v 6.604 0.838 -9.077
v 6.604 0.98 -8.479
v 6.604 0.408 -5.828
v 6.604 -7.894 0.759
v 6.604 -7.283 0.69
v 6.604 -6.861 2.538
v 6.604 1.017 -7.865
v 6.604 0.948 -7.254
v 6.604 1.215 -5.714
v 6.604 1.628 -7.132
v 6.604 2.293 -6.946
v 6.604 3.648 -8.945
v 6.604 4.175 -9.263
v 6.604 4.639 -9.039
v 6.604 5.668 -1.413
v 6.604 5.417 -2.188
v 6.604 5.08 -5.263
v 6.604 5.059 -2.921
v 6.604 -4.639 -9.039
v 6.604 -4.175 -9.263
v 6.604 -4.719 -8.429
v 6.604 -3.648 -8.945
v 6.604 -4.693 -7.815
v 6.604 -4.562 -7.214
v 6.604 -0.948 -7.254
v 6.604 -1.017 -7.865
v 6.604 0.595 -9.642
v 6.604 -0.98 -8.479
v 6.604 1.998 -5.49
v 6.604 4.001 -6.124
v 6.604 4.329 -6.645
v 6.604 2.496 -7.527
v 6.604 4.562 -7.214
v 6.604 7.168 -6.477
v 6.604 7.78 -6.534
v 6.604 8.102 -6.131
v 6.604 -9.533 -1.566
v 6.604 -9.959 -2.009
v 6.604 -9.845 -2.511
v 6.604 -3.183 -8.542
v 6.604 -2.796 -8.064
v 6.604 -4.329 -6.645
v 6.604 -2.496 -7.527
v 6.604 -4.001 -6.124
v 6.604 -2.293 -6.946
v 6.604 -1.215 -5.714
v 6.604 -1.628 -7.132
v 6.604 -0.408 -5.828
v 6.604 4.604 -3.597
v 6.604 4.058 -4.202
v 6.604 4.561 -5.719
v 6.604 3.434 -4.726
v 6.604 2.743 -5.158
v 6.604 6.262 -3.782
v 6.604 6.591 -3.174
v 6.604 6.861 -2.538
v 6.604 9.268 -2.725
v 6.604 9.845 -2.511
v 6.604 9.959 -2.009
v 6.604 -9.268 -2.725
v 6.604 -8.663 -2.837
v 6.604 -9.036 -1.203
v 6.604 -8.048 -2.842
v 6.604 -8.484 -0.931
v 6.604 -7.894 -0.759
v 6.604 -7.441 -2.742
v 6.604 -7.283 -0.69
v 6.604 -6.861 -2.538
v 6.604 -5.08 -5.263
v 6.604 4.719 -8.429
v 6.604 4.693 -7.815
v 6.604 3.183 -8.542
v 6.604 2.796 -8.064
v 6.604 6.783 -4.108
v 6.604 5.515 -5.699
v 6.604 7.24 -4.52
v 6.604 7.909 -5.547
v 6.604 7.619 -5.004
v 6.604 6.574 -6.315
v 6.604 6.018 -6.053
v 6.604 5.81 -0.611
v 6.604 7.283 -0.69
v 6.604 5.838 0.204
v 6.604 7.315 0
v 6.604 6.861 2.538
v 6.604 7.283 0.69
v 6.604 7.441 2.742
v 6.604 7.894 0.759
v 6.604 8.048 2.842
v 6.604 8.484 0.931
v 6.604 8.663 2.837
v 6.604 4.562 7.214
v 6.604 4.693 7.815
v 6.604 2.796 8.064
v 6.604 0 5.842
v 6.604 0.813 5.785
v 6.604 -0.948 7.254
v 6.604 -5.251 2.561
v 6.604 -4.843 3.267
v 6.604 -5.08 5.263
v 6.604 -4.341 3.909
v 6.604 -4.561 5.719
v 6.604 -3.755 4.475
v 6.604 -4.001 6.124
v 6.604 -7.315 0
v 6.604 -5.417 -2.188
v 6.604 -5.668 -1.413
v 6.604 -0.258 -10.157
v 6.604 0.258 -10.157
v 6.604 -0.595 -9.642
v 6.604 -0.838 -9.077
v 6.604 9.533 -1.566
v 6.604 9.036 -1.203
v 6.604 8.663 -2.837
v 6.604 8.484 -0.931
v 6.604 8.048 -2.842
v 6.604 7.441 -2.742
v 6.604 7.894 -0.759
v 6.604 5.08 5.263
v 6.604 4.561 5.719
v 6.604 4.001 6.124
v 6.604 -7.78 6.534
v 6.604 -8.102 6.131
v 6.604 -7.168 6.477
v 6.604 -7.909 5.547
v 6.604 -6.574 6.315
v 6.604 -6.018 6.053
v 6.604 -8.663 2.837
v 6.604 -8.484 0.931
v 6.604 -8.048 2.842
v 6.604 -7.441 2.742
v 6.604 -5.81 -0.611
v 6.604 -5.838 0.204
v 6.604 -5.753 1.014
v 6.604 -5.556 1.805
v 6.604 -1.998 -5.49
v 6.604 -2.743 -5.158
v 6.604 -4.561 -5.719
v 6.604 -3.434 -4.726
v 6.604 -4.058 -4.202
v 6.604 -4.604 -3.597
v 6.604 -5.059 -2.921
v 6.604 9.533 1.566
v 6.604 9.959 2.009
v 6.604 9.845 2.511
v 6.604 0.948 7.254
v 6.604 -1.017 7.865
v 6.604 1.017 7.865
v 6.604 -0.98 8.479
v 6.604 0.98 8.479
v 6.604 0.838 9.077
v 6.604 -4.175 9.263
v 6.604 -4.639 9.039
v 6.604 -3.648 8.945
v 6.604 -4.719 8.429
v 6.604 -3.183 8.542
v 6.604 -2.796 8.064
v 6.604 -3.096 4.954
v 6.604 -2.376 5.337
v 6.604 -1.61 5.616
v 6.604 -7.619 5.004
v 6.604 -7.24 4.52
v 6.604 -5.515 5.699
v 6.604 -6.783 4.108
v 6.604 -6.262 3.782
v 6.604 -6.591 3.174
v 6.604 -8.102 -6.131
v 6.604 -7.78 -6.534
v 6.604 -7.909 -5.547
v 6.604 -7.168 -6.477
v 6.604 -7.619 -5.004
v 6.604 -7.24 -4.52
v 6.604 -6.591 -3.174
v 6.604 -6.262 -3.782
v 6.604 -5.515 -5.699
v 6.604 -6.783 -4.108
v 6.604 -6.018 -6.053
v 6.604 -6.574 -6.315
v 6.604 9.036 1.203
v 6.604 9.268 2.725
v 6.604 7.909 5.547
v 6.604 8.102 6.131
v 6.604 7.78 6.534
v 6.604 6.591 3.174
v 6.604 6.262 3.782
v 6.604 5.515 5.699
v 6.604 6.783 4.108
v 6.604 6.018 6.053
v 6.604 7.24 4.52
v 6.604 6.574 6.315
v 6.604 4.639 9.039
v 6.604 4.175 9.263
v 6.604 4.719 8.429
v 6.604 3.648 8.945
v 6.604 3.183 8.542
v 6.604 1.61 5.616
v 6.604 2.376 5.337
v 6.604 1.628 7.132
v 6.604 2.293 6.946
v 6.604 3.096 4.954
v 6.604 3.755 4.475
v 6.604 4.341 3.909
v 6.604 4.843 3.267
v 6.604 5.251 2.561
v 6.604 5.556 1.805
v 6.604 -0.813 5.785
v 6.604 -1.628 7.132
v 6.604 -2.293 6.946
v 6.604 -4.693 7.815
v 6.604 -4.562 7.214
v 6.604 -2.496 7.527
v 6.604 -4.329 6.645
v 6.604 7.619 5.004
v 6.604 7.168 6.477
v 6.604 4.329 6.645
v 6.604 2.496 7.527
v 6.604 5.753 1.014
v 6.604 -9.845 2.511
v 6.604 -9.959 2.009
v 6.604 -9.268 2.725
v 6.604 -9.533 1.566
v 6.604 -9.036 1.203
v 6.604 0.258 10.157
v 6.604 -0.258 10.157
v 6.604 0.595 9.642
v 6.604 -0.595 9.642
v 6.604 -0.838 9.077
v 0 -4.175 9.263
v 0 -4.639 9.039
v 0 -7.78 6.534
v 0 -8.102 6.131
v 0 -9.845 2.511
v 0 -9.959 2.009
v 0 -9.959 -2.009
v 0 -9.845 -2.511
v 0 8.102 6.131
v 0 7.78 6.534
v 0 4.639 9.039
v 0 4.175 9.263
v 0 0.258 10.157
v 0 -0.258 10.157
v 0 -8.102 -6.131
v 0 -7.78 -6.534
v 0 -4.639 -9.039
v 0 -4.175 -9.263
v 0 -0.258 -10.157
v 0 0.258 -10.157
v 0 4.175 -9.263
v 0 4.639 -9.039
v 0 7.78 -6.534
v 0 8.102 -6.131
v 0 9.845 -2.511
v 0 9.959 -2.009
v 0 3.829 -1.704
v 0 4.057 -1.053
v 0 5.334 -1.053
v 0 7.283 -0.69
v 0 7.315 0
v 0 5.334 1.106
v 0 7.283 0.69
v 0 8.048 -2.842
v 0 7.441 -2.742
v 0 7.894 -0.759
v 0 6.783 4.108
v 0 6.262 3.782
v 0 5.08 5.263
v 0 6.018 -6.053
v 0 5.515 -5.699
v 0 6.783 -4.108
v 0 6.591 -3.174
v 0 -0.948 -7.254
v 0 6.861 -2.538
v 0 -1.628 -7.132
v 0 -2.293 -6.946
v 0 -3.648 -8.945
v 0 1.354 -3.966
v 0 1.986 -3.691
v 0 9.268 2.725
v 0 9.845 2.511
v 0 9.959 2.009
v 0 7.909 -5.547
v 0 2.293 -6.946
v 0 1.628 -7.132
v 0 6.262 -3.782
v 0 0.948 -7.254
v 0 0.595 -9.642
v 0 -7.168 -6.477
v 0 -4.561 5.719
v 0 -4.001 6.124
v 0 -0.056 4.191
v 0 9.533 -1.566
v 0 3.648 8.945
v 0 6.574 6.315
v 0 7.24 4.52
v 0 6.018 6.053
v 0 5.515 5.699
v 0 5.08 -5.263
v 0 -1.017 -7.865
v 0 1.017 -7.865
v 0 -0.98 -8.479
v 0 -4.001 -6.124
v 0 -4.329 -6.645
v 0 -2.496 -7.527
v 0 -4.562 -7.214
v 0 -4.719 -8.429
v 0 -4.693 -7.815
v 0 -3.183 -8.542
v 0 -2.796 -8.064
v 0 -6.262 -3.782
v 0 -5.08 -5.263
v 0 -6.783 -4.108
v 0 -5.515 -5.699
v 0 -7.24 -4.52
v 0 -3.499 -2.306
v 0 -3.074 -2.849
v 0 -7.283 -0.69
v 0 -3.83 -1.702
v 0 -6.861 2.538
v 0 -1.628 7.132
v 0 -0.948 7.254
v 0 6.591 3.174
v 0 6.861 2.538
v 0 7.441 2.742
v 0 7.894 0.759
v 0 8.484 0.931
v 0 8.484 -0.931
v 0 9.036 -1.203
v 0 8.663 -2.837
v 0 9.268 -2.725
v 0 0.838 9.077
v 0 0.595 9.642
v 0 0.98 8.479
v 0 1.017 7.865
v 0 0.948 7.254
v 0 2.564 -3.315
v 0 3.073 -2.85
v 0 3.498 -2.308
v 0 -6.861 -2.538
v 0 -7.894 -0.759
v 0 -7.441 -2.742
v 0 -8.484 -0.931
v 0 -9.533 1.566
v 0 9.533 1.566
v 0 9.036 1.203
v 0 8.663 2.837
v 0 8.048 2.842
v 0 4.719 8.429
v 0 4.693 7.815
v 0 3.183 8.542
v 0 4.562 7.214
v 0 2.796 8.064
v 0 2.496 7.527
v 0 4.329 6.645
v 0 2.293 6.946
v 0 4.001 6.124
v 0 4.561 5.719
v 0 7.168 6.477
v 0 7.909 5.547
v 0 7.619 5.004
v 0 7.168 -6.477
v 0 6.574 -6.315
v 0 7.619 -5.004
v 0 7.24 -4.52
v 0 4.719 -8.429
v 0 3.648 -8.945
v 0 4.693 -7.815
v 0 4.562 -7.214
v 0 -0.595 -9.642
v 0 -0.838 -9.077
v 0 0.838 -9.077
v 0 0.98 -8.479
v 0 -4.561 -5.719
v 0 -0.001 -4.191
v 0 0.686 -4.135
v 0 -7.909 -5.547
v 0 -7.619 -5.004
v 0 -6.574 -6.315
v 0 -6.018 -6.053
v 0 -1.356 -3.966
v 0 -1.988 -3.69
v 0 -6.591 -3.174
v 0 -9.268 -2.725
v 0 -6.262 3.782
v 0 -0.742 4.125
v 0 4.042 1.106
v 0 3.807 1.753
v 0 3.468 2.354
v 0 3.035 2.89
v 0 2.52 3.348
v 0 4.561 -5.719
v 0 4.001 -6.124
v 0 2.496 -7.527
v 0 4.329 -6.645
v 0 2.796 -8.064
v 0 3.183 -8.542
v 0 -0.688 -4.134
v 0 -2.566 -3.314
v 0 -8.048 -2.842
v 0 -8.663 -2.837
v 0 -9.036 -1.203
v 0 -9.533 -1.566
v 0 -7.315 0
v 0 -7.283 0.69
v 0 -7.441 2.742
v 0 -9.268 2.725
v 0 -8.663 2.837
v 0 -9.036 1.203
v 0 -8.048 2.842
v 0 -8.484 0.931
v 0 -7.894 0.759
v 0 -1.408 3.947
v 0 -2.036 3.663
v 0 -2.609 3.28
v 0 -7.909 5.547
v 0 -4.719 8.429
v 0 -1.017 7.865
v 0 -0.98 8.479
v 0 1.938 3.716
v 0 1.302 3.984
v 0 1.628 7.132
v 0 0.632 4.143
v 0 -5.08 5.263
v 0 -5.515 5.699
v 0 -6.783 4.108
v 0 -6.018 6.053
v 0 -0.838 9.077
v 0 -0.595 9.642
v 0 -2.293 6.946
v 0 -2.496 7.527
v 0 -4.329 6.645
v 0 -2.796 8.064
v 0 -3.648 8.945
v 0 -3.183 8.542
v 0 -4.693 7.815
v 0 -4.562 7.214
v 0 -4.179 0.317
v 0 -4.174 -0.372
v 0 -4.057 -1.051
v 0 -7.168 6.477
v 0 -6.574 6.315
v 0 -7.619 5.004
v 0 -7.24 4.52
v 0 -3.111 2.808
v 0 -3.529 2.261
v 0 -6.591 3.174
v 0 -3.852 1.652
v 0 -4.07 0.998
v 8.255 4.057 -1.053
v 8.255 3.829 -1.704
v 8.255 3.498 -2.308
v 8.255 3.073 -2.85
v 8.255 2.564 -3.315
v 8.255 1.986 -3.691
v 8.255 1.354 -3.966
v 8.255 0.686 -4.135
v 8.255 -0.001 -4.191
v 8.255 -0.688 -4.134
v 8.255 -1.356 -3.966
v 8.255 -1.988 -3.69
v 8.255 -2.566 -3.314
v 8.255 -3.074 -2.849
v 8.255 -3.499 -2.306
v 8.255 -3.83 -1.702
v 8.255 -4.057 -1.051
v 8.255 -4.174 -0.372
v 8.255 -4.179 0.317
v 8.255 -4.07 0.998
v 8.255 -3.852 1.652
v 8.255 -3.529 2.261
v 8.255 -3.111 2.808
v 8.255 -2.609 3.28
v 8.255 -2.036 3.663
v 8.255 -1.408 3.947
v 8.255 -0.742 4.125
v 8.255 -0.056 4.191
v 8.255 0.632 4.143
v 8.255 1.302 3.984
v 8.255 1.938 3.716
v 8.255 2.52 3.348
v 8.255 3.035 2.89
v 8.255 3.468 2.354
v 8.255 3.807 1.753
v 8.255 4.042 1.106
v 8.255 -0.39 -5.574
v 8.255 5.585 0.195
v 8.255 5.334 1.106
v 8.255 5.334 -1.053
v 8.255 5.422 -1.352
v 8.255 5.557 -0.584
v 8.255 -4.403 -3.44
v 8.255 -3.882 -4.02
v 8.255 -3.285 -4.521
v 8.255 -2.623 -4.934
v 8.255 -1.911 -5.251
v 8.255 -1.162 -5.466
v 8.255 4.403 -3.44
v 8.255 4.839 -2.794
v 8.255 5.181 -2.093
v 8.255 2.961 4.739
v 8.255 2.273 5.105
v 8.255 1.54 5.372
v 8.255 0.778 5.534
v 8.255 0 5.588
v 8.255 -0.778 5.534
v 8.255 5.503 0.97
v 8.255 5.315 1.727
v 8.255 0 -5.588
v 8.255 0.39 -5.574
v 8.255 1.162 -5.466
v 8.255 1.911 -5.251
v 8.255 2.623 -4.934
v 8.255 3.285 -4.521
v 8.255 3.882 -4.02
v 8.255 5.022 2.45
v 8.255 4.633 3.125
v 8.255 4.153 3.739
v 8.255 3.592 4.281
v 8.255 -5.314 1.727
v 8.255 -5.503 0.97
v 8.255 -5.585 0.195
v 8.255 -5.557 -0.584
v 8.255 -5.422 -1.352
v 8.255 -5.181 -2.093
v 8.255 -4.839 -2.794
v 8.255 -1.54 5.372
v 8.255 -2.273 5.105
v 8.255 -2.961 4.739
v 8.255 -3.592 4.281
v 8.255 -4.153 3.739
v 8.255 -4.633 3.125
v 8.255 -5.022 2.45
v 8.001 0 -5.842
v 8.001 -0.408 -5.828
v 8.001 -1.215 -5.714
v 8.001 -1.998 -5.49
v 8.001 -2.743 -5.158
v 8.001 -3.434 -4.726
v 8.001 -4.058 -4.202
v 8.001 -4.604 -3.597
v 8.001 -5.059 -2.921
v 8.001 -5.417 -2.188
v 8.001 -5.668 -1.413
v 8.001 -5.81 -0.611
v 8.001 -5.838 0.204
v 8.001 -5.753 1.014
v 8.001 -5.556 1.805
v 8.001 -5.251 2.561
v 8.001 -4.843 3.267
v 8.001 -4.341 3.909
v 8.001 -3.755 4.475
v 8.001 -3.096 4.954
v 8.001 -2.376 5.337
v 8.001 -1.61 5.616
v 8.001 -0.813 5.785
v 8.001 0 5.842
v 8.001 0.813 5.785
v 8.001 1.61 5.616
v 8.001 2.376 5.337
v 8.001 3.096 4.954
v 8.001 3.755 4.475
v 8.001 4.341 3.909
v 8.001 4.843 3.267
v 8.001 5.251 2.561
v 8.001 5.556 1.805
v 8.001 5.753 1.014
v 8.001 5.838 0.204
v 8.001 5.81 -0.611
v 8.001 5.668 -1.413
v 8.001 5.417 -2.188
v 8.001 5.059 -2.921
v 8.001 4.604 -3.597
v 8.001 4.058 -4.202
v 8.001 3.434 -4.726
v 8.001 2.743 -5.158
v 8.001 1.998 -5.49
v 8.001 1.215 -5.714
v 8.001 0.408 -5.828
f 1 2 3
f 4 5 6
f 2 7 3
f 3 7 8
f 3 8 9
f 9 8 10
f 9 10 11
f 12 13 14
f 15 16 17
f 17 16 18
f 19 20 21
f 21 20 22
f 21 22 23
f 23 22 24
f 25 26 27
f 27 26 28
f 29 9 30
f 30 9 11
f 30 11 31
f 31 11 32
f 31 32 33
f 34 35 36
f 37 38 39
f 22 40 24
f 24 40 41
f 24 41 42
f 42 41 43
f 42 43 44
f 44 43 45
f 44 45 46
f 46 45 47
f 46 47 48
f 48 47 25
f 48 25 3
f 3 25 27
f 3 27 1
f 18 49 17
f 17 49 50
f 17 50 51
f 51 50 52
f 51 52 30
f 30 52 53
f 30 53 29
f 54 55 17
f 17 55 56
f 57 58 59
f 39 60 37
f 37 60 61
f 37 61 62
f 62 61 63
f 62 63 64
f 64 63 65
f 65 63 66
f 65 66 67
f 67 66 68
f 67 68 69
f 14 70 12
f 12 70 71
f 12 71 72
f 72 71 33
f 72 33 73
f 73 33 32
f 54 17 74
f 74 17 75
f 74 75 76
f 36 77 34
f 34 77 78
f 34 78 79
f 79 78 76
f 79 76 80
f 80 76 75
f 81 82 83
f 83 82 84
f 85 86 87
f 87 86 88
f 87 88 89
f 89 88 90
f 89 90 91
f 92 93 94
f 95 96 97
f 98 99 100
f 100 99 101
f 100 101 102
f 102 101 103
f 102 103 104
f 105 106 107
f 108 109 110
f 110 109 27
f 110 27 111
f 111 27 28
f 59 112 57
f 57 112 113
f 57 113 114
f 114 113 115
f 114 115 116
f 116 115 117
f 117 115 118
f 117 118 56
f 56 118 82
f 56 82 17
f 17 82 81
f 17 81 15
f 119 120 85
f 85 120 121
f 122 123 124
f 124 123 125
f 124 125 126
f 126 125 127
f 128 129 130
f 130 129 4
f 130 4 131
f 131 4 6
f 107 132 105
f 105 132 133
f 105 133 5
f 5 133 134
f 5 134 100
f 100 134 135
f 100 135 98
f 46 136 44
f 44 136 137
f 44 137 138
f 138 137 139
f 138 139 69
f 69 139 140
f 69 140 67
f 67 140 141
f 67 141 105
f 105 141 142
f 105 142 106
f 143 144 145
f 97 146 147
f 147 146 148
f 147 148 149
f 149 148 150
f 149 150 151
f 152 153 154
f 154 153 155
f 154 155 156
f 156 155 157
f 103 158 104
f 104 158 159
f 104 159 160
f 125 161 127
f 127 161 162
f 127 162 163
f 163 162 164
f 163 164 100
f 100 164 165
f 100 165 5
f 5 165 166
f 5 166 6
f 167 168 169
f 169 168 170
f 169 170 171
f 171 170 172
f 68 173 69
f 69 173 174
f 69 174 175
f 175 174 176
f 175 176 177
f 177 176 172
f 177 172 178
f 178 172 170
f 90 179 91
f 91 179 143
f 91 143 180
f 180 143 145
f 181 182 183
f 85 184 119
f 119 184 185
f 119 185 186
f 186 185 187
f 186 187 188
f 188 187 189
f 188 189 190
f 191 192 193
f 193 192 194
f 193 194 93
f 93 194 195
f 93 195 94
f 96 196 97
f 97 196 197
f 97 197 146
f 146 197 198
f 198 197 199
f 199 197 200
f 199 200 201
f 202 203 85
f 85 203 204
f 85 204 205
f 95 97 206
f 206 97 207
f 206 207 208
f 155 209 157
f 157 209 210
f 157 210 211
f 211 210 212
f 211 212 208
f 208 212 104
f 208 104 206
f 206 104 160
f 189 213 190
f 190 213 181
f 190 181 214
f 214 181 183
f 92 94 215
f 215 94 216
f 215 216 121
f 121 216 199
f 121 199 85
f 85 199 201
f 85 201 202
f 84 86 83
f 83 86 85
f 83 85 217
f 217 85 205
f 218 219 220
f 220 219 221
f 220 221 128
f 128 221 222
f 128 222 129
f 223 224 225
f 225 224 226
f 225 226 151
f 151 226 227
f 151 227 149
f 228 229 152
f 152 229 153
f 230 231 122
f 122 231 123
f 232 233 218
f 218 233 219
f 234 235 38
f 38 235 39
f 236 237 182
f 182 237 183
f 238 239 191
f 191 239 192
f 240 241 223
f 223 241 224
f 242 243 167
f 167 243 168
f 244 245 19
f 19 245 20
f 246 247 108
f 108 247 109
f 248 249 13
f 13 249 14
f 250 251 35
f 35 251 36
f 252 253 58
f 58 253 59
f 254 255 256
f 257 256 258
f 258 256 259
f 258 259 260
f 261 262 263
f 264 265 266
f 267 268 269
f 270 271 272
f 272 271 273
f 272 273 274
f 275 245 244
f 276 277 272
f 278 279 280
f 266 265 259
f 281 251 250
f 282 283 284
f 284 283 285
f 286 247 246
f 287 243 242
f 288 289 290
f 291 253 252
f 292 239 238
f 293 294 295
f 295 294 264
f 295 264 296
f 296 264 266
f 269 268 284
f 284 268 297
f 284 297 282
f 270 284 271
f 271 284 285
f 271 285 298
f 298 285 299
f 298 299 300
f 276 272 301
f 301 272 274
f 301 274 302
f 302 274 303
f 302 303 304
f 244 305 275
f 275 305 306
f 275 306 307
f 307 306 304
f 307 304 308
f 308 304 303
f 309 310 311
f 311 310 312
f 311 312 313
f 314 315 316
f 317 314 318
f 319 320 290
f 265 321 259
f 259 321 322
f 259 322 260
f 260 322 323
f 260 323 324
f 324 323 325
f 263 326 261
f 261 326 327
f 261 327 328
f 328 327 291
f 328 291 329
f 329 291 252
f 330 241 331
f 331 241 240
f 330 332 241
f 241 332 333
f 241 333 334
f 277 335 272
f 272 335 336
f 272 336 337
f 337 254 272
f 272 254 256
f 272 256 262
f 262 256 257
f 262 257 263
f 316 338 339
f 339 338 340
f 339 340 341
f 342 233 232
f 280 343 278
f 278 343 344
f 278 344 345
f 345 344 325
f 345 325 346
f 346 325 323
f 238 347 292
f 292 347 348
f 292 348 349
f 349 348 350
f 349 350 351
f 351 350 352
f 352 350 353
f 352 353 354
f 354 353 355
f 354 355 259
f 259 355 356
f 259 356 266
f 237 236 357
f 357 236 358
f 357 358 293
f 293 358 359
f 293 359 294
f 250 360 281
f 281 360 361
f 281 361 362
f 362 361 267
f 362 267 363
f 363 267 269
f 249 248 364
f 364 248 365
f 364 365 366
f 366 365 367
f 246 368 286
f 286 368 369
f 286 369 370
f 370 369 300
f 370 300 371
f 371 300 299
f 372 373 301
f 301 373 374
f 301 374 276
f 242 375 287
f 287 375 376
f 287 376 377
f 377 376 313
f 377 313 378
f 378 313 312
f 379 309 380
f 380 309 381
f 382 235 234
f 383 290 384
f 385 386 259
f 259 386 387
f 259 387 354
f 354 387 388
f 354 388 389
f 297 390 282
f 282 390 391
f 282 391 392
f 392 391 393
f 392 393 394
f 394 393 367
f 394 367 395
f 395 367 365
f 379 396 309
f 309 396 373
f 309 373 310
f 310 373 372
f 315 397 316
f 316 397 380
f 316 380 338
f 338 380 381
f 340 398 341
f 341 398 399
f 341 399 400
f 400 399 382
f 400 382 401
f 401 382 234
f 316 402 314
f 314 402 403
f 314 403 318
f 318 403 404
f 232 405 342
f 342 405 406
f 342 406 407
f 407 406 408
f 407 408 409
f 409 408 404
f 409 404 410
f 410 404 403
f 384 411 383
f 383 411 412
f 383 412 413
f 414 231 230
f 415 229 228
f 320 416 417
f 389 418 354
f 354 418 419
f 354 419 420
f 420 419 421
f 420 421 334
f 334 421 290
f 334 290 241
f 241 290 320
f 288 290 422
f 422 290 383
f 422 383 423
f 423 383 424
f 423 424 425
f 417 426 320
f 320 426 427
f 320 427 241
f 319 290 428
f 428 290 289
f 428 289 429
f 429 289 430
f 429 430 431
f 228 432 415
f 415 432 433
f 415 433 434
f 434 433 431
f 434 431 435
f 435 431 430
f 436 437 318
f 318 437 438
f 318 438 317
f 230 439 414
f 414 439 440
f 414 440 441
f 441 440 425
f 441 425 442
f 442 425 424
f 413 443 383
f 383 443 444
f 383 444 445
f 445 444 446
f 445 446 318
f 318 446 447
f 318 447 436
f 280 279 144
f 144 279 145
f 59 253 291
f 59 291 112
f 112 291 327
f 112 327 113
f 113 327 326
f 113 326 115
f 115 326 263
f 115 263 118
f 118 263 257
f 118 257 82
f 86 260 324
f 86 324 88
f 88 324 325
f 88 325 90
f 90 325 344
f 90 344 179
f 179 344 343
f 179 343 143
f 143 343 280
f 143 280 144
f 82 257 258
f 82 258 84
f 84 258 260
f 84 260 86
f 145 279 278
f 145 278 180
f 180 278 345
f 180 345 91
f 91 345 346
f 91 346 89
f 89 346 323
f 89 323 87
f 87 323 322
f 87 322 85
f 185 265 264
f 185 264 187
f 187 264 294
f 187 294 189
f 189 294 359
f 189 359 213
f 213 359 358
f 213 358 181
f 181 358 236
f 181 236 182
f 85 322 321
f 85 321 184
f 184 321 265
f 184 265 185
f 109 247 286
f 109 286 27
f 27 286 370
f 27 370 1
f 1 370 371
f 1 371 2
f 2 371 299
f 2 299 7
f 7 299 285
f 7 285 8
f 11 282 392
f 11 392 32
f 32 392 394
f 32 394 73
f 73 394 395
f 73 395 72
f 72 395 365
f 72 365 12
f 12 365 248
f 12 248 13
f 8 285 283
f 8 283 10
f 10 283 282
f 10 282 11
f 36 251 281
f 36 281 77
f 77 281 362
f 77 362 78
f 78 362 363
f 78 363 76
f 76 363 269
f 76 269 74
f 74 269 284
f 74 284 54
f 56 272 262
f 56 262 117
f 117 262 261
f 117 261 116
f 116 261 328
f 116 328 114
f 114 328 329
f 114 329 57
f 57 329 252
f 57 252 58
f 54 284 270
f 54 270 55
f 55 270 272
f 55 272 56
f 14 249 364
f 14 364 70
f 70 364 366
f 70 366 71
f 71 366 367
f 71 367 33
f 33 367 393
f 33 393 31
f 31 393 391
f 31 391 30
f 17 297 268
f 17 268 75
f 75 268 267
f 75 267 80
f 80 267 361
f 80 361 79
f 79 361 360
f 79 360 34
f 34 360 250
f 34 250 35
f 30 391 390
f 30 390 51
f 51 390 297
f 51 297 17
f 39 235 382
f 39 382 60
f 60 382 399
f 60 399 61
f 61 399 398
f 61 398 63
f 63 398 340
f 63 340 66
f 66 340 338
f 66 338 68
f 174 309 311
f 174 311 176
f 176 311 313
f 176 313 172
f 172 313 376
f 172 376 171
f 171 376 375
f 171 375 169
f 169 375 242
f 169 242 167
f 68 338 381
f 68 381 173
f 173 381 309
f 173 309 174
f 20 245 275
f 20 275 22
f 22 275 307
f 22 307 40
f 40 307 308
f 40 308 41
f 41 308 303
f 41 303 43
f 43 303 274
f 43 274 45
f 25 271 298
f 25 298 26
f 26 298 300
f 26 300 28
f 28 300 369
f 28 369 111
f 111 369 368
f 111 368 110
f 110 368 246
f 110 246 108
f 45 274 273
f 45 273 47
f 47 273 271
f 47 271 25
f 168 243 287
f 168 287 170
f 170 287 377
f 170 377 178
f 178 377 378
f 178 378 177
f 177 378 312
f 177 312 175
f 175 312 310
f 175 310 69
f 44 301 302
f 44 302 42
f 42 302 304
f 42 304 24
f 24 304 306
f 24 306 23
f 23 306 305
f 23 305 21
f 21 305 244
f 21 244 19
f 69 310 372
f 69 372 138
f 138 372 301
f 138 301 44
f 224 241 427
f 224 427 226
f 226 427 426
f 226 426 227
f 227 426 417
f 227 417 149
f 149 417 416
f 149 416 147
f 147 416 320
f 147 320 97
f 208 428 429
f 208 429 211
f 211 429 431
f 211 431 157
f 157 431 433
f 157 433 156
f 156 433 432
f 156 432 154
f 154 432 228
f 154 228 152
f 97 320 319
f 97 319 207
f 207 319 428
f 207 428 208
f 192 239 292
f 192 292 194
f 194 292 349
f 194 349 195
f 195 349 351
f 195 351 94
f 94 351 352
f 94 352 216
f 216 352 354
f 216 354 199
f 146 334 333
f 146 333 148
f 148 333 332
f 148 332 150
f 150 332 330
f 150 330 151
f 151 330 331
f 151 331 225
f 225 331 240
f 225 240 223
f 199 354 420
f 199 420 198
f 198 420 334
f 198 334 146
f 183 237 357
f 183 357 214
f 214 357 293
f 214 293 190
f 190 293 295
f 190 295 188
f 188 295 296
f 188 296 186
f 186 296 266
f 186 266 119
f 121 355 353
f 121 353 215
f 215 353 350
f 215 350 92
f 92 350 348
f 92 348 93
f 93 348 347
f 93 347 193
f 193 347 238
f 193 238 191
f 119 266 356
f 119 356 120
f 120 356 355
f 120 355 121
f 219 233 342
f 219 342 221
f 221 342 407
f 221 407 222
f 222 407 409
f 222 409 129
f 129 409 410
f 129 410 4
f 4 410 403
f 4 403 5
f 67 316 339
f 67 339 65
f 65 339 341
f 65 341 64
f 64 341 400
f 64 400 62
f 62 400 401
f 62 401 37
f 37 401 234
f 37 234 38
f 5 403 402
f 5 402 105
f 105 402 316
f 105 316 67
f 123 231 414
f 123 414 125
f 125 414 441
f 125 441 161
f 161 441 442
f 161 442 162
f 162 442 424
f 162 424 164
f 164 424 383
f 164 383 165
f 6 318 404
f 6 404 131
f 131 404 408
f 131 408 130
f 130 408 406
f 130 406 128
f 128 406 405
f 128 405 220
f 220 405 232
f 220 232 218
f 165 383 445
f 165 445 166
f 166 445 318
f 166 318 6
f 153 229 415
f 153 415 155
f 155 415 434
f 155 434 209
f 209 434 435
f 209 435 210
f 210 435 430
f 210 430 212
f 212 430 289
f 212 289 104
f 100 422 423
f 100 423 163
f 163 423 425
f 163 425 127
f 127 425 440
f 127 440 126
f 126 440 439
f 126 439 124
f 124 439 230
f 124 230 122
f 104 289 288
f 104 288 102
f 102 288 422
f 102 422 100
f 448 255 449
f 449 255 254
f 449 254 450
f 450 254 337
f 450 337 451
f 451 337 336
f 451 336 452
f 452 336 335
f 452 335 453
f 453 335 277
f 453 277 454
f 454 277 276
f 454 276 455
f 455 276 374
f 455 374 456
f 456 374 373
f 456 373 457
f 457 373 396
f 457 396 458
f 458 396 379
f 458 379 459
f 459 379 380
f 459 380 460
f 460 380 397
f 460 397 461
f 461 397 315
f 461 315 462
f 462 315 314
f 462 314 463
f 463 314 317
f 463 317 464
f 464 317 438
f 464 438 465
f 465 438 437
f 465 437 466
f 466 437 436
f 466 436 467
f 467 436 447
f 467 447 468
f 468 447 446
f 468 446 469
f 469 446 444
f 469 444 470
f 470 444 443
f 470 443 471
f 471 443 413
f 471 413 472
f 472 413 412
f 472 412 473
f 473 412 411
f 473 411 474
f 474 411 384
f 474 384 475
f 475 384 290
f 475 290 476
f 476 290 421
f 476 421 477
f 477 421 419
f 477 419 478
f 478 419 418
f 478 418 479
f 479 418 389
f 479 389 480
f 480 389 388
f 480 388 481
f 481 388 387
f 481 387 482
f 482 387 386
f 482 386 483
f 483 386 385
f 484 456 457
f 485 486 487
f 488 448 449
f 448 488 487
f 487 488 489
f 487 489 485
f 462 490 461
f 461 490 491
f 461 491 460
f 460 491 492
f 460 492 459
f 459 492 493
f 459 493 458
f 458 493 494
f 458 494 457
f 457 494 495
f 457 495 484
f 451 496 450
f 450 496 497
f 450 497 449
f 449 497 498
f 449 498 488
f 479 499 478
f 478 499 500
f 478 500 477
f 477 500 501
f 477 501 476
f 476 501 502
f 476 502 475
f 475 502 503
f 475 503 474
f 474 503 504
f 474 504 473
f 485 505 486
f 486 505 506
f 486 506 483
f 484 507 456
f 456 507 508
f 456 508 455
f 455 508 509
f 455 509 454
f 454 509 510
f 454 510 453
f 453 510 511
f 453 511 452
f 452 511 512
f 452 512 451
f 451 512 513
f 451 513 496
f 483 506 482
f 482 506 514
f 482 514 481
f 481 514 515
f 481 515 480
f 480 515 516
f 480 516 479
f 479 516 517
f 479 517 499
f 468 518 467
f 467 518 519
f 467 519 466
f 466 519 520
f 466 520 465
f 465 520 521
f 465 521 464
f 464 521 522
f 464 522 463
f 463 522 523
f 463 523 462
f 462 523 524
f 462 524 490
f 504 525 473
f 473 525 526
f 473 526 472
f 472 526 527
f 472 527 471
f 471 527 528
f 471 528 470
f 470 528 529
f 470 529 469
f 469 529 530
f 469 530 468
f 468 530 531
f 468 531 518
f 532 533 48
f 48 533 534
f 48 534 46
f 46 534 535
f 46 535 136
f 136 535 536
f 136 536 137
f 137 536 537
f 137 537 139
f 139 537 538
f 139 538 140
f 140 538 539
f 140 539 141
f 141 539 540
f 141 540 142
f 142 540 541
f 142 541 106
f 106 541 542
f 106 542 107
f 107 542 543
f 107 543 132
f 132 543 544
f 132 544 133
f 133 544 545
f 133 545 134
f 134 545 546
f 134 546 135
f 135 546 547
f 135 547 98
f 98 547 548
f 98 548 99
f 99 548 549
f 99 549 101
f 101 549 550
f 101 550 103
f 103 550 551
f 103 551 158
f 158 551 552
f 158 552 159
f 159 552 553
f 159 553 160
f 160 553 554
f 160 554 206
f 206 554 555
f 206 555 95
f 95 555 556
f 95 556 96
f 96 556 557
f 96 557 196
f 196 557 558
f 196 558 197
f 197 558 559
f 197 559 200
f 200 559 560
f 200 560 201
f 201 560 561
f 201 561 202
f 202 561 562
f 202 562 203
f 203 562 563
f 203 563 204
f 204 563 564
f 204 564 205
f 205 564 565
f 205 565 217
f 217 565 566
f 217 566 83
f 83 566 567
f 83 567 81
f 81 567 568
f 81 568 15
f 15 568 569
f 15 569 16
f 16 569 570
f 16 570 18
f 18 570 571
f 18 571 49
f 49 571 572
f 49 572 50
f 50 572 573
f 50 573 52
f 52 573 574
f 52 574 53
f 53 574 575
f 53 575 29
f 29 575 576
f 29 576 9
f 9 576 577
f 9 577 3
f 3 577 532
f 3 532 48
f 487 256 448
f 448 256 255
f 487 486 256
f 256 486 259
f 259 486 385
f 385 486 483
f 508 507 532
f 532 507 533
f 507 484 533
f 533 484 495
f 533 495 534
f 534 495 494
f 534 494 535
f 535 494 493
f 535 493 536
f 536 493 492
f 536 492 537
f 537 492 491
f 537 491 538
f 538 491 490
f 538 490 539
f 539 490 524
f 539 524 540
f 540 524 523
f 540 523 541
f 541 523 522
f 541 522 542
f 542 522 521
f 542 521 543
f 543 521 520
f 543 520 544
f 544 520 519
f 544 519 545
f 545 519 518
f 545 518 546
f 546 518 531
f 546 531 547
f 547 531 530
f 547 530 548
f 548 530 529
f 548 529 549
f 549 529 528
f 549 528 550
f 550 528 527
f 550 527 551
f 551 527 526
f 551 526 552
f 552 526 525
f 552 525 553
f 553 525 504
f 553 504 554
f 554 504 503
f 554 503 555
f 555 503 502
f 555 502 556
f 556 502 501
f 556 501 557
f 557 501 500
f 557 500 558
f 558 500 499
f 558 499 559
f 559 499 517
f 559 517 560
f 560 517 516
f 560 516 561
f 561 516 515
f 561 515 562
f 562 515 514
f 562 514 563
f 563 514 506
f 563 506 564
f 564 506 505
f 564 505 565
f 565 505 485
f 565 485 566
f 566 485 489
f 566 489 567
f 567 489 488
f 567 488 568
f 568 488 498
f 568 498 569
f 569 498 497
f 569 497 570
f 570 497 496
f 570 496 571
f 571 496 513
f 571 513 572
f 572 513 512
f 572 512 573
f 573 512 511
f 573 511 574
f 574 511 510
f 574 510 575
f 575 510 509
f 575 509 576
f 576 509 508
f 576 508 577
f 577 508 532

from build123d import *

# Parameters (mm, degrees)
BASPROSKE_W         = 6.604
BASPROSKE_H         = 10.16
TOOTHCUT_DEPTH      = 16.813412535
TEETHCUTS_COUNT     = 14
TEETHCUTS_ANGLE     = 334.285714286
BORSKE_R            = 4.191
BORE_DEPTH          = 50.8000508
BOSS_EXTRUDE1_START = 1.651
SKETCH1_R           = 5.842
SKETCH1_R_2         = 4.191
BOSS_EXTRUDE1_DEPTH = 1.651
SKETCH2_W           = 2.159
SKETCH2_H           = 5.334
CUT_EXTRUDE1_DEPTH  = 17.448750705
CHAMFER1_SIZE       = 0.254


with BuildPart() as part:
    # BasProSke → Base-Revolve (revolve)
    with BuildSketch(Plane(origin=(0, 0, 0), x_dir=(1, 0, 0), z_dir=(0, 1, 0))):
        with Locations((3.302, 5.08)):
            Rectangle(BASPROSKE_W, BASPROSKE_H)
    revolve(axis=Axis((-10, 0, 0), (1, 0, 0)))

    # TooCutSke → ToothCut (cut, through all)
    with BuildSketch(Plane(origin=(0, 0, 0), x_dir=(0, 0, -1), z_dir=(1, 0, 0))):
        with BuildLine():
            ThreePointArc((0.690270933, 7.282559789), (0, 7.3152), (-0.690270933, 7.282559789))
            ThreePointArc((-0.690270933, 7.282559789), (-1.062455419, 8.780807329), (-2.034499207, 9.980139585))
            ThreePointArc((-2.034499207, 9.980139585), (0, 10.1854), (2.034499207, 9.980139585))
            ThreePointArc((2.034499207, 9.980139585), (1.062455419, 8.780807329), (0.690270933, 7.282559789))
        make_face()
    toothcut = extrude(amount=TOOTHCUT_DEPTH, mode=Mode.SUBTRACT)

    # TeethCuts: ToothCut ×14 about axis
    teethcuts_axis = Axis((-10, 0, 0), (1, 0, 0))
    for i in range(1, TEETHCUTS_COUNT):
        add(toothcut.rotate(teethcuts_axis, i * TEETHCUTS_ANGLE / (TEETHCUTS_COUNT - 1)), mode=Mode.SUBTRACT)

    # BorSke → Bore (cut, symmetric)
    with BuildSketch(Plane(origin=(0, 0, 0), x_dir=(0, 0, -1), z_dir=(1, 0, 0))):
        Circle(BORSKE_R)
    extrude(amount=BORE_DEPTH, both=True, mode=Mode.SUBTRACT)

    # Sketch1 → Boss-Extrude1 (add)
    with BuildSketch(Plane(origin=(6.604, 0, 0), x_dir=(0, 0, -1), z_dir=(1, 0, 0)).offset(BOSS_EXTRUDE1_START)):
        Circle(SKETCH1_R)
        Circle(SKETCH1_R_2, mode=Mode.SUBTRACT)
    extrude(amount=-BOSS_EXTRUDE1_DEPTH)

    # Sketch2 → Cut-Extrude1 (cut, through all)
    with BuildSketch(Plane.ZY):
        with Locations((0.026405968, 2.667)):
            Rectangle(SKETCH2_W, SKETCH2_H)
    extrude(amount=-CUT_EXTRUDE1_DEPTH, mode=Mode.SUBTRACT)

    # Chamfer1
    chamfer1_edges = [part.edges().sort_by_distance(p)[0] for p in [
        (8.255, 0, 5.842),
    ]]
    chamfer(chamfer1_edges, length=CHAMFER1_SIZE)


solid = part.part
